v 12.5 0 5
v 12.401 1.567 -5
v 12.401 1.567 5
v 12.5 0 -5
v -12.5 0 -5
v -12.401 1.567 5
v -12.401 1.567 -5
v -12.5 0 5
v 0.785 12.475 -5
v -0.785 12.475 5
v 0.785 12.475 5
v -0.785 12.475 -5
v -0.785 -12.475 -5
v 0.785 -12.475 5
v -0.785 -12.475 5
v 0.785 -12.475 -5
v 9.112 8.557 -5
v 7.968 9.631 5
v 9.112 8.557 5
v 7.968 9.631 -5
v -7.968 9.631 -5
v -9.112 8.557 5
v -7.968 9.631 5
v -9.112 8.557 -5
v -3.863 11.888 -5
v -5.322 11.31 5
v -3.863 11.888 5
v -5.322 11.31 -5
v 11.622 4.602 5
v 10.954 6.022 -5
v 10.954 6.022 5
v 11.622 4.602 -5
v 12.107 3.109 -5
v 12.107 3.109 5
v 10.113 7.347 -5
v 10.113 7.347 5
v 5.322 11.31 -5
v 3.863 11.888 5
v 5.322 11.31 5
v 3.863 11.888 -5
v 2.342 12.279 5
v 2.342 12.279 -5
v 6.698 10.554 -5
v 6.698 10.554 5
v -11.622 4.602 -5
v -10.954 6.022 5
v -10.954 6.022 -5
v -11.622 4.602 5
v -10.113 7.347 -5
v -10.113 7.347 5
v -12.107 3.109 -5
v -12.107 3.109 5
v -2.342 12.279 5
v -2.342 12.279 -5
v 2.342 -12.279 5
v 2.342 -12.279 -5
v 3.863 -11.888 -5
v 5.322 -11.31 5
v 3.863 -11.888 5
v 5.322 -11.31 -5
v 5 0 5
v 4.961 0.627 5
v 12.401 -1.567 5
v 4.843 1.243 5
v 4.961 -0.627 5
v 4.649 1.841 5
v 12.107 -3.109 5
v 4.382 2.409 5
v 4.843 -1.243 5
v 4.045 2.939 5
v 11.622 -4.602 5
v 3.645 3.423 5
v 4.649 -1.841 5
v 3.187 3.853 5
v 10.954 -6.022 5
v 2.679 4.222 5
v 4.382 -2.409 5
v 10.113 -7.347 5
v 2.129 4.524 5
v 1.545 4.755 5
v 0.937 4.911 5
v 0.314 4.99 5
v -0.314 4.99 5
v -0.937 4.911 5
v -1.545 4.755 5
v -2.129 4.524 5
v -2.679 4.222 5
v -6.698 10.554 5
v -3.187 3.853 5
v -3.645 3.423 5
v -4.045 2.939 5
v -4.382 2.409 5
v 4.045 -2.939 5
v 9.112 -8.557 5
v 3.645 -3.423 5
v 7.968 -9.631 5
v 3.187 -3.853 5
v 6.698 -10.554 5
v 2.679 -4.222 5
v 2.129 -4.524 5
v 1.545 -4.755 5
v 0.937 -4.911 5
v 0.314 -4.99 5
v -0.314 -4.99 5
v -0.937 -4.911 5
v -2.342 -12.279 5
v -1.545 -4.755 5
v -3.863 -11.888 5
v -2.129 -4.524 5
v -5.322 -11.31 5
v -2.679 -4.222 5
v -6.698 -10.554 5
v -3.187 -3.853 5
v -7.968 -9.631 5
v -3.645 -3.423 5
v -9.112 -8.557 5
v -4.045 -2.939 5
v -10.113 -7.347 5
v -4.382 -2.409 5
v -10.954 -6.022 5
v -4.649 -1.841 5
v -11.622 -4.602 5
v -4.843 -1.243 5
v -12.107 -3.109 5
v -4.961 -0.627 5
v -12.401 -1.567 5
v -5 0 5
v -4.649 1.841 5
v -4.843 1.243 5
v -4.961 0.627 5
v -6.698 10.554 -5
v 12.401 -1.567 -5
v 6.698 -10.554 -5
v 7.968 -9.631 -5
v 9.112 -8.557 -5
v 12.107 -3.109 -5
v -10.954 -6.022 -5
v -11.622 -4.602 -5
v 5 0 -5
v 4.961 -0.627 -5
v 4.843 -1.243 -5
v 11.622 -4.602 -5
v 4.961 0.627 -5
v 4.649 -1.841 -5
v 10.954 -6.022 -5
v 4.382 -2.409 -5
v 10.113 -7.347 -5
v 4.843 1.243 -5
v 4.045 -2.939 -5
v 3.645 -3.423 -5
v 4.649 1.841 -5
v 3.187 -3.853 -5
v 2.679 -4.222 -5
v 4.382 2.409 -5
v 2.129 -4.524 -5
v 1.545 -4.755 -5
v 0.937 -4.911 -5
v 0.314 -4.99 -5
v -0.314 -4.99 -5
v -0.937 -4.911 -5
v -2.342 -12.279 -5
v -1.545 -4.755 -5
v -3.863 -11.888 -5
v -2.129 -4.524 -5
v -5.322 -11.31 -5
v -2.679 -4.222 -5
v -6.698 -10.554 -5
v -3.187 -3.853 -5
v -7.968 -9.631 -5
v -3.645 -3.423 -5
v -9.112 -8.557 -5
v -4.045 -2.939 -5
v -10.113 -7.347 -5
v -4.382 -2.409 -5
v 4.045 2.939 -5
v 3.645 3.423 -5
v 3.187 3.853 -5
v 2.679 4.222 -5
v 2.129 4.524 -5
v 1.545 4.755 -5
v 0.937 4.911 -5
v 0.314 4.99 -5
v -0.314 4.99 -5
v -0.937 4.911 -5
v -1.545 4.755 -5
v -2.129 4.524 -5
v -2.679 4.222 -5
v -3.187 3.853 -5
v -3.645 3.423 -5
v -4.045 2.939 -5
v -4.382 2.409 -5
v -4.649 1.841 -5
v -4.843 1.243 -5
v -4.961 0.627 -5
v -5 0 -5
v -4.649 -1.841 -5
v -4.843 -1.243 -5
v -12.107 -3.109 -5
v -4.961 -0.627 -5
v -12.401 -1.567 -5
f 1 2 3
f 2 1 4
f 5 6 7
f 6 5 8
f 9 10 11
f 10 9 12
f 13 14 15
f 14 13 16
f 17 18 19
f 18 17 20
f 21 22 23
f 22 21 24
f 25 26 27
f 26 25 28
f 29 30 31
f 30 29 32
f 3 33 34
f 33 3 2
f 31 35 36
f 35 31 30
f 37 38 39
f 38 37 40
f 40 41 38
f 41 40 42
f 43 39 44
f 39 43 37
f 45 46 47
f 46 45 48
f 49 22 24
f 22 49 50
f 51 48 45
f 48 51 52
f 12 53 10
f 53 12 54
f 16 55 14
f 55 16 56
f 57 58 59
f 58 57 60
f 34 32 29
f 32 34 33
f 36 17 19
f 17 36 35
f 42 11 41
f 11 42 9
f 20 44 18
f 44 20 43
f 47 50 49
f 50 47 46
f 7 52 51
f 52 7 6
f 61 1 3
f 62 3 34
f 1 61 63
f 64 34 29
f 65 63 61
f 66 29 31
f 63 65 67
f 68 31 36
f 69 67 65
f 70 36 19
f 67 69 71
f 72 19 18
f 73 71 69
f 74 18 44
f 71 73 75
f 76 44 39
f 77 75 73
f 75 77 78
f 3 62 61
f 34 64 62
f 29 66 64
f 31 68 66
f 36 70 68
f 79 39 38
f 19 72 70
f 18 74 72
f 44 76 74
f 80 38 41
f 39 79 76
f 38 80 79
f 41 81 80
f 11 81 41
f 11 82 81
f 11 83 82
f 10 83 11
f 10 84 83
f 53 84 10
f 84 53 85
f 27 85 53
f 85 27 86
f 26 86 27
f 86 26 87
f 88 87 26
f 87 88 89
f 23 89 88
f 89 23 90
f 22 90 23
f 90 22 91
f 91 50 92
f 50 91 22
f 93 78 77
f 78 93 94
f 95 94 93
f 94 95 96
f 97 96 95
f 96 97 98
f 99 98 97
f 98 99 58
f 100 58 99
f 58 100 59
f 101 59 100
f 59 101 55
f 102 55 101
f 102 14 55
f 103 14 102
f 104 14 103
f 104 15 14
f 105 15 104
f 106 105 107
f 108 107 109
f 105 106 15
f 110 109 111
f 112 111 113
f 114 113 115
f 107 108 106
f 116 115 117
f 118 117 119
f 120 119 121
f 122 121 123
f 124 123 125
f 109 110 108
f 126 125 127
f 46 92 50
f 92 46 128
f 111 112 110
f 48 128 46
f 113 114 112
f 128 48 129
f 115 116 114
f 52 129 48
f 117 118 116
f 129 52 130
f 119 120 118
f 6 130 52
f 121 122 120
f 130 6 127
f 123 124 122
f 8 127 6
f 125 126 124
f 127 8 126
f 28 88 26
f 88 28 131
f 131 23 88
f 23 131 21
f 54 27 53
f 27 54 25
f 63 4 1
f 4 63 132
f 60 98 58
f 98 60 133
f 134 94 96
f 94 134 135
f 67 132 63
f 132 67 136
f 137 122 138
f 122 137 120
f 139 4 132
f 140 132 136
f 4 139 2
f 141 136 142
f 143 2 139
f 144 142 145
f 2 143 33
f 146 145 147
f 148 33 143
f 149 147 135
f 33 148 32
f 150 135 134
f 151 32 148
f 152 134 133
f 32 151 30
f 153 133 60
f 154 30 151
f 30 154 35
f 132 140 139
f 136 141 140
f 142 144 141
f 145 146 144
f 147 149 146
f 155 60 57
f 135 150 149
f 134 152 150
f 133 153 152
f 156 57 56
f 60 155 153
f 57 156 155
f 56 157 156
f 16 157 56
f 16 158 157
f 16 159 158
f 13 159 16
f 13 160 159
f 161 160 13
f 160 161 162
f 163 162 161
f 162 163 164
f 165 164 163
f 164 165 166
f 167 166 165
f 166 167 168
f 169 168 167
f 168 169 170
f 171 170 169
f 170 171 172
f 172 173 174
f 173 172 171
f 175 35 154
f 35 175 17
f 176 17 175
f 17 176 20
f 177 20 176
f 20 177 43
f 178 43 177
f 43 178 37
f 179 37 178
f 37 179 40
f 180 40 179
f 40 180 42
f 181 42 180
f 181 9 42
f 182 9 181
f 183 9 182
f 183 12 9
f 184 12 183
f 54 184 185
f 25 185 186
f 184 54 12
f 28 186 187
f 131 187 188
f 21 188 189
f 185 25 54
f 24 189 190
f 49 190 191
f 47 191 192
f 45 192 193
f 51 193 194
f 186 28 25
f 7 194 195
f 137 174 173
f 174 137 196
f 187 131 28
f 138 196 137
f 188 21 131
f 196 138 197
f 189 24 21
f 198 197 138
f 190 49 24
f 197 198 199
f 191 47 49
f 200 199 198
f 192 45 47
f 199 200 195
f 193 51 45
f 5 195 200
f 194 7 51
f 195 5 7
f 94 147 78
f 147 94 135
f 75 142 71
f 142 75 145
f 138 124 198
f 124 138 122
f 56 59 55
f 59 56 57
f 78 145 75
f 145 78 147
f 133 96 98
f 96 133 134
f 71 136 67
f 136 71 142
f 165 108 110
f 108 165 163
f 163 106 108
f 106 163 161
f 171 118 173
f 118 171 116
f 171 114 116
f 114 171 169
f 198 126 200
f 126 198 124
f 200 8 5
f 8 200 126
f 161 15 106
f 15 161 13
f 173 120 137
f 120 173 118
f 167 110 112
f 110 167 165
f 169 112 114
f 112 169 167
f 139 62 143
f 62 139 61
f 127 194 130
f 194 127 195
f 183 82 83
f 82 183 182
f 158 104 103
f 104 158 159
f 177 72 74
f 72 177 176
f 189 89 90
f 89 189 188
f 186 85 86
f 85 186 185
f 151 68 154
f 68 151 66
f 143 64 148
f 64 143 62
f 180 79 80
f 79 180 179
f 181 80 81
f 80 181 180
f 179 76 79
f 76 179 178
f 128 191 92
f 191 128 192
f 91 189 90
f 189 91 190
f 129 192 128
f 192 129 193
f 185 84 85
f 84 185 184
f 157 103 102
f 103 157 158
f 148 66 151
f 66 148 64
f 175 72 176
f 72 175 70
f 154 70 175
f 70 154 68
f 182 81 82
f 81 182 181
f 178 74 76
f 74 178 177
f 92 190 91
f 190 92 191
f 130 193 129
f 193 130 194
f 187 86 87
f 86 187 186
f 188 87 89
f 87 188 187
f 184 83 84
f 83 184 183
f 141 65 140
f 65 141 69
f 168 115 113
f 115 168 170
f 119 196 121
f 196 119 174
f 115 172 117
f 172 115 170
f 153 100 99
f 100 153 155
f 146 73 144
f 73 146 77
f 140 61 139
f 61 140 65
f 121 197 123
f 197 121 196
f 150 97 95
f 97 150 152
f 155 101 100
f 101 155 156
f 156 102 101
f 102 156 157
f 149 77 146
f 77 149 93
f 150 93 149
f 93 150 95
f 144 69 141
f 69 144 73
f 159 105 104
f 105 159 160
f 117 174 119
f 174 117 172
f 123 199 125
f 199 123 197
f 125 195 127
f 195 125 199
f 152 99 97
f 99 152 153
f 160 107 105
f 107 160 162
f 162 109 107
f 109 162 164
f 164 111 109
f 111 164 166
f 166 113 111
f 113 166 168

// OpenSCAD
$fn = 50;


difference() {
	union() {
		translate(v = [0, 0, -5.0000000000]) {
			cylinder(h = 10, r = 12.5000000000);
		}
	}
	union() {
		translate(v = [0, 0, -100.0000000000]) {
			cylinder(h = 200, r = 5);
		}
	}
}
